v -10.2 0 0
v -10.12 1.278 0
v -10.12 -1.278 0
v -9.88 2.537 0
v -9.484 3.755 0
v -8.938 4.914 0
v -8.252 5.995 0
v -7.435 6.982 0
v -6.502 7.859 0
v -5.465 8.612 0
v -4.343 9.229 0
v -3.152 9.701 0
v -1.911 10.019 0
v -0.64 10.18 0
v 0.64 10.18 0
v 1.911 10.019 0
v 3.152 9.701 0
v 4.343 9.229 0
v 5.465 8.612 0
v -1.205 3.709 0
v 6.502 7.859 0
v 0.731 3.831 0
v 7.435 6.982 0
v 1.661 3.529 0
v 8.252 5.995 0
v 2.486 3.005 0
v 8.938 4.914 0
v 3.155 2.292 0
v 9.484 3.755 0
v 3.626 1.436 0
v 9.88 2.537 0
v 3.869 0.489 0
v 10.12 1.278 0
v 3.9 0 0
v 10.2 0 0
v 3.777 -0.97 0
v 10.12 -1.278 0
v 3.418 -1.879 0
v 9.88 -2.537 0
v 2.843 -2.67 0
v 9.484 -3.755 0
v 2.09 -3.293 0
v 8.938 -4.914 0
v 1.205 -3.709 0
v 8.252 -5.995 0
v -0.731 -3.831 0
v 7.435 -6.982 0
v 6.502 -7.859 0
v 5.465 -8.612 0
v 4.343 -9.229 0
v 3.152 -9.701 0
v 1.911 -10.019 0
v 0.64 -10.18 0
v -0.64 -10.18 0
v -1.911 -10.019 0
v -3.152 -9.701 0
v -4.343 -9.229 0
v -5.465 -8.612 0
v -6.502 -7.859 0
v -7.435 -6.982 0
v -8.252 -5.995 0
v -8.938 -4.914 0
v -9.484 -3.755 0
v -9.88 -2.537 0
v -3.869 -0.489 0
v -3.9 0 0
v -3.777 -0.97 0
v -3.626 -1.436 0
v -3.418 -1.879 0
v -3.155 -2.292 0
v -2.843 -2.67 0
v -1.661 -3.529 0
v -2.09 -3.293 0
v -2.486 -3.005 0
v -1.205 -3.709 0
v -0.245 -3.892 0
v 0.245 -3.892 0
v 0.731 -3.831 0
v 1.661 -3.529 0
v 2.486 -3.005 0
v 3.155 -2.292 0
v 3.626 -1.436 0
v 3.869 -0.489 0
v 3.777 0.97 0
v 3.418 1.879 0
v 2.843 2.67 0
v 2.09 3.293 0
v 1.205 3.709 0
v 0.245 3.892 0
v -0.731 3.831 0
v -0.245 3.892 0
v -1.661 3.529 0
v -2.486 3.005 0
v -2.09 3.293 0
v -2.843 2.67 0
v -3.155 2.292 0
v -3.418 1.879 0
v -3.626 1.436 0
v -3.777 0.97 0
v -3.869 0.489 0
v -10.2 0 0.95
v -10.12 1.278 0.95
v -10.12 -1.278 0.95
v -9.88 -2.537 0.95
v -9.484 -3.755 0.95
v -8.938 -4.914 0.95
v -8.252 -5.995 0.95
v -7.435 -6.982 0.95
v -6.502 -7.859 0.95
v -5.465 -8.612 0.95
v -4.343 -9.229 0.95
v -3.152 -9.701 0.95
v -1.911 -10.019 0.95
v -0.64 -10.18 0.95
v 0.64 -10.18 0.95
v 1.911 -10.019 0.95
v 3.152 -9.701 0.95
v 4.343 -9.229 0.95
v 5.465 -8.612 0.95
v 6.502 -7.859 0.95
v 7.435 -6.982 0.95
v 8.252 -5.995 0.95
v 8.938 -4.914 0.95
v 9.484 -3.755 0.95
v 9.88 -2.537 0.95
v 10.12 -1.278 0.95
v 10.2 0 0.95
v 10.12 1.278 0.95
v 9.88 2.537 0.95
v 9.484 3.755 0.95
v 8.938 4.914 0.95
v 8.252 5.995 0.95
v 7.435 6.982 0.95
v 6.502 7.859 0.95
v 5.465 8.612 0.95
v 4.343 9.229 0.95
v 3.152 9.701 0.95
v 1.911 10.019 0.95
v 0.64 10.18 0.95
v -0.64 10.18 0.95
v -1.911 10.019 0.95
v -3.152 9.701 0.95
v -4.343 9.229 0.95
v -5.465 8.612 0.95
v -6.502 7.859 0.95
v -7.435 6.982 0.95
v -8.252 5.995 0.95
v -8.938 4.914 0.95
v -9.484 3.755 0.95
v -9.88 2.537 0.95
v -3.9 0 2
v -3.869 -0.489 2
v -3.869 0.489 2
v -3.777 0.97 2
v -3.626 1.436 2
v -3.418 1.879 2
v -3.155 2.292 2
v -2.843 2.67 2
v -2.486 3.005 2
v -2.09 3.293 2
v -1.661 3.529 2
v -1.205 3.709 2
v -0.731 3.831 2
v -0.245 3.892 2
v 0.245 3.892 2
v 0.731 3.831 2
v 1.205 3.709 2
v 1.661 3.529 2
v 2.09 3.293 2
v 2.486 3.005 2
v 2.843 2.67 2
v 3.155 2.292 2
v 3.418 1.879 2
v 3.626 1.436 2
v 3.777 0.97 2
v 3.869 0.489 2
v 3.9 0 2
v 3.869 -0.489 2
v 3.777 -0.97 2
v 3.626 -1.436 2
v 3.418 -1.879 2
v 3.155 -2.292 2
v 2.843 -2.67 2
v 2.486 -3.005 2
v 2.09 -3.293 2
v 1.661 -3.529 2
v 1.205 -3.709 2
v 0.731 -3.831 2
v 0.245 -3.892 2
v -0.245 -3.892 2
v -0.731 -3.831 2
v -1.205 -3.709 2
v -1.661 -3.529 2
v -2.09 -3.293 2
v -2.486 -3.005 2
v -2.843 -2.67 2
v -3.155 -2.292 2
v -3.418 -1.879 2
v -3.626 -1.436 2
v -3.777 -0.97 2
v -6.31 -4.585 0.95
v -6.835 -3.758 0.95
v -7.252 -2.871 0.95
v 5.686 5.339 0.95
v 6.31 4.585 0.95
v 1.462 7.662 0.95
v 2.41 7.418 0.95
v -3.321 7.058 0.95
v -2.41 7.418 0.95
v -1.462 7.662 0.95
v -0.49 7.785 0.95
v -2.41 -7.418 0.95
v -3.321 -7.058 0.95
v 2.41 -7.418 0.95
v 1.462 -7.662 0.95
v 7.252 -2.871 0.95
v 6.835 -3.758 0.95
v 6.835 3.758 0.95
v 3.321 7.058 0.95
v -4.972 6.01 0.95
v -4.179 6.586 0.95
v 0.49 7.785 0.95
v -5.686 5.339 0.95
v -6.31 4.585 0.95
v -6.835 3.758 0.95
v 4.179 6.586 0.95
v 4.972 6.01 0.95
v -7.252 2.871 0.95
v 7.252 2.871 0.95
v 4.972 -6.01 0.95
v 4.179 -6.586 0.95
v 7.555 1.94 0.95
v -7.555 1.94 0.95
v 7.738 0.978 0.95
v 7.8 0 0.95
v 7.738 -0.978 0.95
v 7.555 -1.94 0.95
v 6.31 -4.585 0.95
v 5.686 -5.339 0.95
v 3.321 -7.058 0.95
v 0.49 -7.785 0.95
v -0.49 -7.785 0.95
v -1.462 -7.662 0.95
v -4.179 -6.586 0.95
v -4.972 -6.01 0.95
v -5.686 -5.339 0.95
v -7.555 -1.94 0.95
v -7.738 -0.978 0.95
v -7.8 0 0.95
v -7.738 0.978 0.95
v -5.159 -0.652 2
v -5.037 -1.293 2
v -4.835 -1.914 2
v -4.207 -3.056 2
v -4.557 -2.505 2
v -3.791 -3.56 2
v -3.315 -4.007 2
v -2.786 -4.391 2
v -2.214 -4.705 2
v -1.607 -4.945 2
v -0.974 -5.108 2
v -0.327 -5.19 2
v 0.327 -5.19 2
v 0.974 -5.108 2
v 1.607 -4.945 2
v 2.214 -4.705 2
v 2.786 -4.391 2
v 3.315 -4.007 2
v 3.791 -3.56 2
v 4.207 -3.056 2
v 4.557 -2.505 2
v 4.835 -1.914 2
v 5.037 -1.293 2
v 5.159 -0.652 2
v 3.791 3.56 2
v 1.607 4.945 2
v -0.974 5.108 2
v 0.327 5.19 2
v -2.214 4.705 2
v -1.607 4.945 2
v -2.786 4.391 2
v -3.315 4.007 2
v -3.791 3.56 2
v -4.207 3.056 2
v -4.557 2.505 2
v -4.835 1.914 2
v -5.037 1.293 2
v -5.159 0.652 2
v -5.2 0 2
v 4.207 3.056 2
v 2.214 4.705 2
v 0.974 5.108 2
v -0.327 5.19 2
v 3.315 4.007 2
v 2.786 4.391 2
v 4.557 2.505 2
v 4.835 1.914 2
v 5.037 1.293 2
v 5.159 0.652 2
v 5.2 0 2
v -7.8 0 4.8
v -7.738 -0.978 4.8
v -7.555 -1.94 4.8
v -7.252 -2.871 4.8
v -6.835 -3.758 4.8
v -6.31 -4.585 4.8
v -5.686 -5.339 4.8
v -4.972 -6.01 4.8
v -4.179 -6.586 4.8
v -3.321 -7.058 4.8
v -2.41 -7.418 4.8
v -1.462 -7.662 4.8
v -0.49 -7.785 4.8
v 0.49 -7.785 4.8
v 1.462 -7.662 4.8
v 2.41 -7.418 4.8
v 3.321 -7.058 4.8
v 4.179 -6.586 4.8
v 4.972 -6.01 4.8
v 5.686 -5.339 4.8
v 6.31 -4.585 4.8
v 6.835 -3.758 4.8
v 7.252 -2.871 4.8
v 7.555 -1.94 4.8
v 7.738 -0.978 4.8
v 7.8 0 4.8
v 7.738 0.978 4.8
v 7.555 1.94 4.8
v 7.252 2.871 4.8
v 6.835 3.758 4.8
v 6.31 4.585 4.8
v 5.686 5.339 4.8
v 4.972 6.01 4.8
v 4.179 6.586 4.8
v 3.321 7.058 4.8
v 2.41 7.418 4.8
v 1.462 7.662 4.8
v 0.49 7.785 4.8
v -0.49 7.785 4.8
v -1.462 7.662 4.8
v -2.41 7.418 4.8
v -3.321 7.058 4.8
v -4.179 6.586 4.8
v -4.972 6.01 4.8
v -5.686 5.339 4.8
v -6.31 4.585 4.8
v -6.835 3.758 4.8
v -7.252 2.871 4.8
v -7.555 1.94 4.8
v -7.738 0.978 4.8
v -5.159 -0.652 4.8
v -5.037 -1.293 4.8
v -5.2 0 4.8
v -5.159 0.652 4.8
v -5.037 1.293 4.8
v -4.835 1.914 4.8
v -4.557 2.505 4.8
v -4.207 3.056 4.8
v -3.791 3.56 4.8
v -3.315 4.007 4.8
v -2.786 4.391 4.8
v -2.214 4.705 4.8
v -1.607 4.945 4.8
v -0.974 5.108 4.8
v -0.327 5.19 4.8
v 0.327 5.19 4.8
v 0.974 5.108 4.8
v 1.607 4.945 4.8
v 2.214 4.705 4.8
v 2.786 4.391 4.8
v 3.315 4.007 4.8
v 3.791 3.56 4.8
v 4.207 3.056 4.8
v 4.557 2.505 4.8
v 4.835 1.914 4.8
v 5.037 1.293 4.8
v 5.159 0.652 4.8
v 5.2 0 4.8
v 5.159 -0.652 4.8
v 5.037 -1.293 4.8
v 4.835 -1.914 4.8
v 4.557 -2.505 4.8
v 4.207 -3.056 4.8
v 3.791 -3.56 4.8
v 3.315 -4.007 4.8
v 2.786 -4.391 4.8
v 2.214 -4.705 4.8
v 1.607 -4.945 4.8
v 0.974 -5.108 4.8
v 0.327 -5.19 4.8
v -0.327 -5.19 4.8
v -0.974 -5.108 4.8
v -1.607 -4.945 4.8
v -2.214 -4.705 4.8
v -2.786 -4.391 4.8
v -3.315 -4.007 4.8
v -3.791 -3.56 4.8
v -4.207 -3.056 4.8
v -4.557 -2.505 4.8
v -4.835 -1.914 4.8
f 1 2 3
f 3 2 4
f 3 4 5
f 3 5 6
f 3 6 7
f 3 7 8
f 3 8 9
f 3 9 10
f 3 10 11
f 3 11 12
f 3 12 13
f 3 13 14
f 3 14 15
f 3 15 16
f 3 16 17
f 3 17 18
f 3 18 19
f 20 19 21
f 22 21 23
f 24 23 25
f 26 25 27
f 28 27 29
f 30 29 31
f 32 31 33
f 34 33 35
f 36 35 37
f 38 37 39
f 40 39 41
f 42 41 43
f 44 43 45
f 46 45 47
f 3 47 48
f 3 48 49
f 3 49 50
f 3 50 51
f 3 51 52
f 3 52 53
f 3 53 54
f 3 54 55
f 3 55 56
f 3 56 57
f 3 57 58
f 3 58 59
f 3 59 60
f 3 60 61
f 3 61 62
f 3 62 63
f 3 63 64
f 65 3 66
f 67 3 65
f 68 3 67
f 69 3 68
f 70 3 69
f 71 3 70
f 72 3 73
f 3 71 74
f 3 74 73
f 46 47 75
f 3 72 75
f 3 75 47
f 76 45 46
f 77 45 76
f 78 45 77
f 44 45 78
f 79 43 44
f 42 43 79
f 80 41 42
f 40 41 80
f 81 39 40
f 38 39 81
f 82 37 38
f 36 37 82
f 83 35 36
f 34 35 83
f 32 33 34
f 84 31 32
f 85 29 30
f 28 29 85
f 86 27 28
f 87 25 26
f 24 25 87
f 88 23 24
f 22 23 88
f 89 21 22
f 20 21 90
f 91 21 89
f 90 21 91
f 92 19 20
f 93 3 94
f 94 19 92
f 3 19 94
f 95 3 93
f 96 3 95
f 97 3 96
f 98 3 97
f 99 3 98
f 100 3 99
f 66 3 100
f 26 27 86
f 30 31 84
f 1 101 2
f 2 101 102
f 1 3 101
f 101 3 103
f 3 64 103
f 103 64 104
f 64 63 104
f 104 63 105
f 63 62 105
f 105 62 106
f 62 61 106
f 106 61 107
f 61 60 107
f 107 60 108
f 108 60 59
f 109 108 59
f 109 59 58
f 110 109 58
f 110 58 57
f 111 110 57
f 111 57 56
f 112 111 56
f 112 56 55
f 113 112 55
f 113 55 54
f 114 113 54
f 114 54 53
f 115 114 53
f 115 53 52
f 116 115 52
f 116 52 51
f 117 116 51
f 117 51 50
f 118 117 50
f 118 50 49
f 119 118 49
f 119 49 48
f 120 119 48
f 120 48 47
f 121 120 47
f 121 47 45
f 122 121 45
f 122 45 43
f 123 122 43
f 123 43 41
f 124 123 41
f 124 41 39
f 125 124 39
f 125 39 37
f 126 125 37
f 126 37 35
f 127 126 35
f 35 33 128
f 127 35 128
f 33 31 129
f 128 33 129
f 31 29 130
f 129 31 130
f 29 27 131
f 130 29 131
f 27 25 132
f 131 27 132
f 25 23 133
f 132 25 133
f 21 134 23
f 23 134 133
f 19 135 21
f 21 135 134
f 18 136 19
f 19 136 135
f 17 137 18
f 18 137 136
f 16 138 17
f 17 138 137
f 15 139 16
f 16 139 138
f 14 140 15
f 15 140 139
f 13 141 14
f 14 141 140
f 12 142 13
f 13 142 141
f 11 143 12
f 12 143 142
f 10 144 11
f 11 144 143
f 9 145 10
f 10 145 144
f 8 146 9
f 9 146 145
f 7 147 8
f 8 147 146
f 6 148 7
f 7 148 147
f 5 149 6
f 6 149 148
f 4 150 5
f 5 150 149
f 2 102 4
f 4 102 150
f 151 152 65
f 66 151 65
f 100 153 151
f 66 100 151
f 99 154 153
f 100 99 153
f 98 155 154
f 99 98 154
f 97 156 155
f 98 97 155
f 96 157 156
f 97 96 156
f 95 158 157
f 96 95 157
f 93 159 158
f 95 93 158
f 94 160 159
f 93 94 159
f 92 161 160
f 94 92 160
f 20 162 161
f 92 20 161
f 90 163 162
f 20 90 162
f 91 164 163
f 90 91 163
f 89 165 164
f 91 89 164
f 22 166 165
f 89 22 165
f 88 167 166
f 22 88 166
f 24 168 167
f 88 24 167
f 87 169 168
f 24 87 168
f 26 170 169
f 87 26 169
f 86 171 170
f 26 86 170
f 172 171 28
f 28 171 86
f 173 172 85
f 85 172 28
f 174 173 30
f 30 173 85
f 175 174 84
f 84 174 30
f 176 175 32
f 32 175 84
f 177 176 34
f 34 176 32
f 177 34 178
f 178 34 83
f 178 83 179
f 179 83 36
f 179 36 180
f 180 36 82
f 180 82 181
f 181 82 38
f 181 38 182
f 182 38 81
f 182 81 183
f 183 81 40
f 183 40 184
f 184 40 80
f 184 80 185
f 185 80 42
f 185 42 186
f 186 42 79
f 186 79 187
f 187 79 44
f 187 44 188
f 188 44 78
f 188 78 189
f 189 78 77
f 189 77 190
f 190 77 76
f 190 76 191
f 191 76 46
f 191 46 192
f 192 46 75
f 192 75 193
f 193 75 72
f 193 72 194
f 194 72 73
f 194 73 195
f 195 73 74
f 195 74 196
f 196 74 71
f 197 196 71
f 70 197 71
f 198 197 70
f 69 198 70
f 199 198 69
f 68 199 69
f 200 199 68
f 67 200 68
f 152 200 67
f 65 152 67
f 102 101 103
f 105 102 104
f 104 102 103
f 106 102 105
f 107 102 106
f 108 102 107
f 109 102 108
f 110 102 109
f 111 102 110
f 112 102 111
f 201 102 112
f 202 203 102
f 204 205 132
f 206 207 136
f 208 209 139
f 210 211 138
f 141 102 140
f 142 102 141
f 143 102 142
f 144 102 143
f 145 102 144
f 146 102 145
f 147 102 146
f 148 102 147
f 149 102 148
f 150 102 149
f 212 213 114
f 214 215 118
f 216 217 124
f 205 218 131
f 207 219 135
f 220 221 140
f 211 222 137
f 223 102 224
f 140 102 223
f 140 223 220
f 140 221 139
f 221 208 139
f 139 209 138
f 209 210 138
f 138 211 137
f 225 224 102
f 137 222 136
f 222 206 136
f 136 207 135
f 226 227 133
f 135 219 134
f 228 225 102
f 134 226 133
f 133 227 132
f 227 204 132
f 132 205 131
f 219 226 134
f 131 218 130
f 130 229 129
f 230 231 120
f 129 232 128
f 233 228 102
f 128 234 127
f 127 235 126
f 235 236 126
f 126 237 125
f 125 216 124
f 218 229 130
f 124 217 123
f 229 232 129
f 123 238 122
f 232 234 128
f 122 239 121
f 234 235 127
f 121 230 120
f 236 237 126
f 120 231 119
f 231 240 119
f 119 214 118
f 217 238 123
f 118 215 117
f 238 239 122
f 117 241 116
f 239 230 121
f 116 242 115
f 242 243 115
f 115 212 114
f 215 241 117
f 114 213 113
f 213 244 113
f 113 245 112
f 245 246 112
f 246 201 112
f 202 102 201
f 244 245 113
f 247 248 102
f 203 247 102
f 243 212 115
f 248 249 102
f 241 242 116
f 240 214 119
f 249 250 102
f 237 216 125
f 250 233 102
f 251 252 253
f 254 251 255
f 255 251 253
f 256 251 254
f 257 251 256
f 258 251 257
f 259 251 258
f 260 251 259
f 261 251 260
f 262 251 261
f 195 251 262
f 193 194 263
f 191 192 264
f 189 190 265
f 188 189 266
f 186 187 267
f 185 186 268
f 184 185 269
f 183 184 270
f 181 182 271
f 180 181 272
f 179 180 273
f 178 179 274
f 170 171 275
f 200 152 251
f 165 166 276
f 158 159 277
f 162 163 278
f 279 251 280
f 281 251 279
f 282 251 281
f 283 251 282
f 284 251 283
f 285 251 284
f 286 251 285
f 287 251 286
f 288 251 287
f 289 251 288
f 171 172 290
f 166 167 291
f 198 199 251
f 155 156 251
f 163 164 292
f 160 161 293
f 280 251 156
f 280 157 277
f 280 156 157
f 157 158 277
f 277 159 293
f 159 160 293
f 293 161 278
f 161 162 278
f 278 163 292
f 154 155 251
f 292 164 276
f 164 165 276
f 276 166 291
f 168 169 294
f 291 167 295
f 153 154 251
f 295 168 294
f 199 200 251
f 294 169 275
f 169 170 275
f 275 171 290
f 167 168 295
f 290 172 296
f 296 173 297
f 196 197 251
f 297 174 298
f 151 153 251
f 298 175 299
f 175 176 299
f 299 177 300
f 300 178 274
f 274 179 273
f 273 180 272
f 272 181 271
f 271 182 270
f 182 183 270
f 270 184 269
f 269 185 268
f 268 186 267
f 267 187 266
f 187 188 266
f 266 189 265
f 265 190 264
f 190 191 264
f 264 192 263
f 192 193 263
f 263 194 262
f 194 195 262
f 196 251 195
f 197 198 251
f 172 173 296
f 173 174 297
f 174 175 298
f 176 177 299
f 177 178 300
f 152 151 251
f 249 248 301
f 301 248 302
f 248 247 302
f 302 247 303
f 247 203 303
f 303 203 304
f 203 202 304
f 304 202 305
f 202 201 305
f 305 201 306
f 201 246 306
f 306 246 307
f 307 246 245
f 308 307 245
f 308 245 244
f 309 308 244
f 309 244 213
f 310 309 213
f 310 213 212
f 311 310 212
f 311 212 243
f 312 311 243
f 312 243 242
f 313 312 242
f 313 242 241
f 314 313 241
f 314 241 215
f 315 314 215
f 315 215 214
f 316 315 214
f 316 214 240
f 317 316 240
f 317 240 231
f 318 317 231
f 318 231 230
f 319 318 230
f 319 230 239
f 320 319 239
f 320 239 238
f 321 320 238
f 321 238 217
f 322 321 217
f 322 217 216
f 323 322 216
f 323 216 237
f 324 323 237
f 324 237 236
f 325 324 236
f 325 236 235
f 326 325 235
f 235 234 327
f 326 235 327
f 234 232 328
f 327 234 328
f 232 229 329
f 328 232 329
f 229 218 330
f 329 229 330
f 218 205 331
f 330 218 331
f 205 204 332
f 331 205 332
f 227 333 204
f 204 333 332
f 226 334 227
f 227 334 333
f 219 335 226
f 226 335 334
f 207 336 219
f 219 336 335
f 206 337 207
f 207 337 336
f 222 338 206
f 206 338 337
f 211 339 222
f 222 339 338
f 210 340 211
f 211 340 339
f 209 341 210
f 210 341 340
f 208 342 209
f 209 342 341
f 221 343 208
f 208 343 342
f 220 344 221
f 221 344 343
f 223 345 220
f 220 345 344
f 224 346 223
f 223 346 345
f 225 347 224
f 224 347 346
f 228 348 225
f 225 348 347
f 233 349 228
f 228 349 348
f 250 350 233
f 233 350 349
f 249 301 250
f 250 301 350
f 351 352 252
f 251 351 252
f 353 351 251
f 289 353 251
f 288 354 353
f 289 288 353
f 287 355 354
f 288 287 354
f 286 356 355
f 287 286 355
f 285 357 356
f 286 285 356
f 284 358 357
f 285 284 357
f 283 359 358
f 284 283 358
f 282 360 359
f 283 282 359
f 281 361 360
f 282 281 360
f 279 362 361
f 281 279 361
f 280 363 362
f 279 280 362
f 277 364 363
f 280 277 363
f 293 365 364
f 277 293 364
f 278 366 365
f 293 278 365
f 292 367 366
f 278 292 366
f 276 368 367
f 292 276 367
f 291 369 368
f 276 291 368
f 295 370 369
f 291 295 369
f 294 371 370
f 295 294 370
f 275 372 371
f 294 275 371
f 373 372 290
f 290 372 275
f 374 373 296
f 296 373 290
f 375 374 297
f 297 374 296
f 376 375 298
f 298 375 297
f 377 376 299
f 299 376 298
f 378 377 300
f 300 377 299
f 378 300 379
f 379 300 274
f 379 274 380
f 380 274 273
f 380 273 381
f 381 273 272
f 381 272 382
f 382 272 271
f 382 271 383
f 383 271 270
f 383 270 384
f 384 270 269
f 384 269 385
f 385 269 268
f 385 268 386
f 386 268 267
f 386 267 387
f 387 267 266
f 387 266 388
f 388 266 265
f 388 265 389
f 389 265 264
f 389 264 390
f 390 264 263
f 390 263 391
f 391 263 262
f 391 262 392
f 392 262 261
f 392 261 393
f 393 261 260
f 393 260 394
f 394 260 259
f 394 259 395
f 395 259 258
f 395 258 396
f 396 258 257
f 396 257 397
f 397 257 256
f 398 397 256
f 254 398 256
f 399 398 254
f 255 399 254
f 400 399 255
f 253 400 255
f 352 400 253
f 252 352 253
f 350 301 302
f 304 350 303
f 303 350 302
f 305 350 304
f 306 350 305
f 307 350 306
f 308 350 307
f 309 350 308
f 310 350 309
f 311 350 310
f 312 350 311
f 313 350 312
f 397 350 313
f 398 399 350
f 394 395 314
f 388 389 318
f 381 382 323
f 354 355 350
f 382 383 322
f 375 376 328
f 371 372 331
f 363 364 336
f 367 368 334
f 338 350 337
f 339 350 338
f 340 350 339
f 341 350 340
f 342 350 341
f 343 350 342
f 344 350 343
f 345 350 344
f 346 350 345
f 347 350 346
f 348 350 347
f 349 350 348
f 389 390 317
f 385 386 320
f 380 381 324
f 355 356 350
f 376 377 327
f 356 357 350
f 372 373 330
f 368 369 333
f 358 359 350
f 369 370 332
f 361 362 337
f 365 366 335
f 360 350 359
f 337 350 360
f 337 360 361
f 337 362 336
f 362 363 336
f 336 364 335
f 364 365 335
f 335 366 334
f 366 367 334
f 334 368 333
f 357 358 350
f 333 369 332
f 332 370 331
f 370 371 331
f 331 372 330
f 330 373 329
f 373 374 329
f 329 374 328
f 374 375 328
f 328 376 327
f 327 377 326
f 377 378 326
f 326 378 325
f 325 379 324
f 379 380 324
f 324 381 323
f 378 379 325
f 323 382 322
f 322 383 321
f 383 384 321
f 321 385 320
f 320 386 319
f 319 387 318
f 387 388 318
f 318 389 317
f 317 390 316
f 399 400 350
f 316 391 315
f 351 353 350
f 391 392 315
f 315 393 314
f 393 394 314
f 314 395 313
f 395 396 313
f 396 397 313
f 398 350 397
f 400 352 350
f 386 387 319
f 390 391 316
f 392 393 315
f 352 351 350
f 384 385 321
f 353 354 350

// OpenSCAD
// PRUSA iteration3
// 624 bearing belt guide
// GNU GPL v3
// Josef Průša <iam@josefprusa.cz> and contributors
// http://www.reprap.org/wiki/Prusa_Mendel
// http://prusamendel.org

wall= 1.2;
clearence= 0.1; 

module belt_guide_base(){
 cylinder(r=6.5+wall+clearence, h=5-0.2, $fn=50);
 cylinder(r=6.5+wall+clearence+2*wall, h=0.95, $fn=50);
}

module belt_guide_holes(){
 translate([0,0,2]) cylinder(r=5.1+clearence, h=10, $fn=50);
 translate([0,0,-1]) cylinder(r=5+wall+clearence-2*wall, h=10, $fn=50);
}

// Final part
module belt_guide(){
 difference(){
  belt_guide_base();
  belt_guide_holes();
 }
}

belt_guide();
